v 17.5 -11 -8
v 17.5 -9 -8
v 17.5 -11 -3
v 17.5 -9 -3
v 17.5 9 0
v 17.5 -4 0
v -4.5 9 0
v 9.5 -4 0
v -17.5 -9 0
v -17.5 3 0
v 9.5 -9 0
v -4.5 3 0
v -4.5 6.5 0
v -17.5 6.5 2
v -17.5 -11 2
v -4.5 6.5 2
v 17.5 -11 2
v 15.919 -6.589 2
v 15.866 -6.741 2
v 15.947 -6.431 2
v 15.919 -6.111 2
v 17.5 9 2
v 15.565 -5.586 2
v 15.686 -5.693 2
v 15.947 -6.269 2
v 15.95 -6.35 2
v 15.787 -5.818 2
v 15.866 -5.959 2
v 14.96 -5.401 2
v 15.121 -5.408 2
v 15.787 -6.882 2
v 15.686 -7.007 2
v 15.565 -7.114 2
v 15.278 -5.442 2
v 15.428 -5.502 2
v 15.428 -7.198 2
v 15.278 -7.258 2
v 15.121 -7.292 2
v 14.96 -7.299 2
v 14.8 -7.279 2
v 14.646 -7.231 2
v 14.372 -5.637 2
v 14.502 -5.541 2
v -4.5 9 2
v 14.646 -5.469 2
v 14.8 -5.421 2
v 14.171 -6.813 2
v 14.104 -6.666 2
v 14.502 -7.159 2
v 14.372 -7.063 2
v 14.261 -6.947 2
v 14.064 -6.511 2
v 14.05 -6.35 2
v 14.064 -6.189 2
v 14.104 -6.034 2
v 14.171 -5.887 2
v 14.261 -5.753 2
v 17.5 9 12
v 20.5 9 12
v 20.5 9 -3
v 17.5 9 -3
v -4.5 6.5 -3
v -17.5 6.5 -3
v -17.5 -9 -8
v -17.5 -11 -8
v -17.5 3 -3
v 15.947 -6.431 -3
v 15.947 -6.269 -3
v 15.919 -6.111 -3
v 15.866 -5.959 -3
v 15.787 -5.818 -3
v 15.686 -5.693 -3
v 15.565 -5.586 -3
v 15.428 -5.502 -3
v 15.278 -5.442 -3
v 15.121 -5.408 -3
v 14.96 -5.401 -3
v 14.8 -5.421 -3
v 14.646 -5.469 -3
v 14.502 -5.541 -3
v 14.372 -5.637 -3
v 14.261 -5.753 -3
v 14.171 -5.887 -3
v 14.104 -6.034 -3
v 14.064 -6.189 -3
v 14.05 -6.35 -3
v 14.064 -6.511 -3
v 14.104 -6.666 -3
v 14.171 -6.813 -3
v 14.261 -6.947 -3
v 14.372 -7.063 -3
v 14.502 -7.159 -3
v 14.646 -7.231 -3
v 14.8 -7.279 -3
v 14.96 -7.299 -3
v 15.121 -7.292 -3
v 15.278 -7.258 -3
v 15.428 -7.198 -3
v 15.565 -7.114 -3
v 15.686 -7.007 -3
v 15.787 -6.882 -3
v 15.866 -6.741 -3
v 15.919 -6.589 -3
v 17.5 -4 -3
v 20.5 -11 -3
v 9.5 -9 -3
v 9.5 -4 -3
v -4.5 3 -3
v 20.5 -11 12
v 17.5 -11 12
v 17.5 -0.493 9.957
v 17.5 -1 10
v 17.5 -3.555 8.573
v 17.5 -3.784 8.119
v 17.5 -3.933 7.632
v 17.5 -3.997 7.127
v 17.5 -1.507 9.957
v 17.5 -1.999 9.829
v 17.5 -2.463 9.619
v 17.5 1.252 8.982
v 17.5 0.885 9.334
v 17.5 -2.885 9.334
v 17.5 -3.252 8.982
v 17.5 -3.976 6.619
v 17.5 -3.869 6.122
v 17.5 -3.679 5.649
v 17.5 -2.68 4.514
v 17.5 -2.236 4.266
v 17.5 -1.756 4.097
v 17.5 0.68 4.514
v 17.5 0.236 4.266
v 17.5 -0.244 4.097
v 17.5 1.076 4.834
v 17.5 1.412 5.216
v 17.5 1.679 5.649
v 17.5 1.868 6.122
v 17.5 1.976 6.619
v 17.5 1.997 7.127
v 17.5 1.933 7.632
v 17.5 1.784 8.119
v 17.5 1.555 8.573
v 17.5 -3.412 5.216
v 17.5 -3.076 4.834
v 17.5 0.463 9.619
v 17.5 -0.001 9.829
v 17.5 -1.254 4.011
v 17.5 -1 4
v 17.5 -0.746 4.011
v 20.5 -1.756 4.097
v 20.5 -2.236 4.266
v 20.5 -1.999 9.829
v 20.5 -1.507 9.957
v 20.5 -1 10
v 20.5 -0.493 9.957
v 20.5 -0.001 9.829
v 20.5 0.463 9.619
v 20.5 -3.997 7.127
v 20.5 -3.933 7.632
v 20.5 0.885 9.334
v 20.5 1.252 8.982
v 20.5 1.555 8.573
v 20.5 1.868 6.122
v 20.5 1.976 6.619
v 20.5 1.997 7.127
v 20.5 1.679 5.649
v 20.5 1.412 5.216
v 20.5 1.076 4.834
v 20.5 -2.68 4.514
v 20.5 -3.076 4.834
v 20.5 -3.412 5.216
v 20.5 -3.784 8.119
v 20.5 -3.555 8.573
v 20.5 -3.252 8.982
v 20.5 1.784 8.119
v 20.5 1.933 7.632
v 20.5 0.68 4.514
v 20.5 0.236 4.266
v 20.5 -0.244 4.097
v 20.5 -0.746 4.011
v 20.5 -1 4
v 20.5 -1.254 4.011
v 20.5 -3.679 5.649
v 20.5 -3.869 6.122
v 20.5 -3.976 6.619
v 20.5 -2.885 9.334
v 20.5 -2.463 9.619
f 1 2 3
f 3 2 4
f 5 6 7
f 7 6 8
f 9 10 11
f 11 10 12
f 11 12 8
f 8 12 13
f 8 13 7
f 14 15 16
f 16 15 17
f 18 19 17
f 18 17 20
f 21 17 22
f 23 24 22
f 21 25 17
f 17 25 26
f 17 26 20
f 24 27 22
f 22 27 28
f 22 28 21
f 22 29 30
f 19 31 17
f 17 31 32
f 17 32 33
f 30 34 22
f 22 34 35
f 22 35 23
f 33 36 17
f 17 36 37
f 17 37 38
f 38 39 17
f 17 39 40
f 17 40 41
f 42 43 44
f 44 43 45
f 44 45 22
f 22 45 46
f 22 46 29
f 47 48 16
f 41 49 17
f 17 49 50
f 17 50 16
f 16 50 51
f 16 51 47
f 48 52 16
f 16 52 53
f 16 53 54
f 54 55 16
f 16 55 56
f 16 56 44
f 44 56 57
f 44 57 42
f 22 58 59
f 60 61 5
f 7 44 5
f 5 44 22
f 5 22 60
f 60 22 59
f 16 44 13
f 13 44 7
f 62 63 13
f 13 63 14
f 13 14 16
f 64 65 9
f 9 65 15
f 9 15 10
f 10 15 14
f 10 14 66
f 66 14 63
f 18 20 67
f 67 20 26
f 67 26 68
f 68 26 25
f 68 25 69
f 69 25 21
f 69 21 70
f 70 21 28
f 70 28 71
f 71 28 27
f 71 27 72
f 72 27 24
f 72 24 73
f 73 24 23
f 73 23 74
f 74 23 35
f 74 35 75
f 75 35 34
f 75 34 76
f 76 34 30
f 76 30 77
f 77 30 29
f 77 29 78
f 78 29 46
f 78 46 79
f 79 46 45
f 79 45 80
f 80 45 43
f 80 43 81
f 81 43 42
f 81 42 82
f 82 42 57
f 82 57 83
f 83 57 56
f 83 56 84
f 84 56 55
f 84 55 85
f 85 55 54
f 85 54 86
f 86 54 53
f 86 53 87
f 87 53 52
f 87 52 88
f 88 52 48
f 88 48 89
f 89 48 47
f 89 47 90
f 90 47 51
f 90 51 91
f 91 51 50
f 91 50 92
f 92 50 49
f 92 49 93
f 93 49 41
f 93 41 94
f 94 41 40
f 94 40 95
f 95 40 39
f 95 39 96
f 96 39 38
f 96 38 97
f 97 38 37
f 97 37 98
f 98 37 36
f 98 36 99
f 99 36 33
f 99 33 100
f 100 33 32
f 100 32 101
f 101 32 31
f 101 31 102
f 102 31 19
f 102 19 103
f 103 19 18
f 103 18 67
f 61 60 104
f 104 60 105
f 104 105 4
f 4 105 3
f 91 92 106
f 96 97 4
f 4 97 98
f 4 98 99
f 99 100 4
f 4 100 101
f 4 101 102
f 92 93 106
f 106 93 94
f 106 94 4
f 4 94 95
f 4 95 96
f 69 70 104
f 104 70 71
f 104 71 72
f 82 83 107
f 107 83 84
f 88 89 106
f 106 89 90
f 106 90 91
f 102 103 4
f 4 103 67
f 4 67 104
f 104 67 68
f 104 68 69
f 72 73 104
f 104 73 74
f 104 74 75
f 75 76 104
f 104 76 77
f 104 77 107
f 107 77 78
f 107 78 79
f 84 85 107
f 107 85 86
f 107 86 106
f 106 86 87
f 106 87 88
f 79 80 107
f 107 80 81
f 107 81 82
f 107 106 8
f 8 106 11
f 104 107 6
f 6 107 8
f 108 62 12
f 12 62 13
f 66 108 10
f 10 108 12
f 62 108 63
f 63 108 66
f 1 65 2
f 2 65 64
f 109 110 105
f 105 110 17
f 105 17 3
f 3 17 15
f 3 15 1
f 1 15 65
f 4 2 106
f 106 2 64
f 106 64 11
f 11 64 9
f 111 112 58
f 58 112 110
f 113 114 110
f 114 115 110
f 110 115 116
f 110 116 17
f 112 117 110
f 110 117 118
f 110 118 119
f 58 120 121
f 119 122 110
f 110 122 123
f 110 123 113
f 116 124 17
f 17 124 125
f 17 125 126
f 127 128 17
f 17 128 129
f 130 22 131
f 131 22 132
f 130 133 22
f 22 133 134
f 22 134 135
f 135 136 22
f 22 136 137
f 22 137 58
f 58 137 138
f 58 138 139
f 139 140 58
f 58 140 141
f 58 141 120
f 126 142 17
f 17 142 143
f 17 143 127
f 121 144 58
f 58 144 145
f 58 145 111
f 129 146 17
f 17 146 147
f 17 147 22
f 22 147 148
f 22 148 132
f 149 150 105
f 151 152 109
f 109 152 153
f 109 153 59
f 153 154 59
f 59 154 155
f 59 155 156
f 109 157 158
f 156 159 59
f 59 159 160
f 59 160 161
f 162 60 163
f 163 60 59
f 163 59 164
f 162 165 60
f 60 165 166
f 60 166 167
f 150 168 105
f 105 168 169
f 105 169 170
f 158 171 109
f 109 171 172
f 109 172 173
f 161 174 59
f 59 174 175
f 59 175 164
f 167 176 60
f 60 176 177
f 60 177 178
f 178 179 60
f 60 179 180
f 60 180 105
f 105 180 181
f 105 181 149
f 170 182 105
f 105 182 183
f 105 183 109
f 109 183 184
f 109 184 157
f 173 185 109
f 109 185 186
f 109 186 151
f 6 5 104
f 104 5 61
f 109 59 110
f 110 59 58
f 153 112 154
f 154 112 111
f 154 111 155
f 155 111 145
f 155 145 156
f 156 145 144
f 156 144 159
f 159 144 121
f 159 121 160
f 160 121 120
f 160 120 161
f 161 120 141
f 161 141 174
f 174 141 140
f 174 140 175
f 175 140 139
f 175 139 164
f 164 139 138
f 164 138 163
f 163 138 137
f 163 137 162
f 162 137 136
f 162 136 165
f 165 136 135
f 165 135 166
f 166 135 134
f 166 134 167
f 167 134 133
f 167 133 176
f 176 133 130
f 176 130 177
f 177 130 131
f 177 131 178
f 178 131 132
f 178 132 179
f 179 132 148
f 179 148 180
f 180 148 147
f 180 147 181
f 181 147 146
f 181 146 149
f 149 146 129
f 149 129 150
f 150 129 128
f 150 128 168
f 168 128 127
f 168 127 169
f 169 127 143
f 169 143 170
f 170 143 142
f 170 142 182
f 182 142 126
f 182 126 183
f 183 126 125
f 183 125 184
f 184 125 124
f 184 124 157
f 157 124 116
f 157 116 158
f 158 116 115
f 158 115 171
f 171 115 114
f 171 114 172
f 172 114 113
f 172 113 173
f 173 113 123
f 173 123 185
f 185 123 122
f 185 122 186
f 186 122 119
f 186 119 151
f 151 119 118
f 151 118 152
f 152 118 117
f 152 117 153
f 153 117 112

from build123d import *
from build123d.topology import SkipClean

# Parameters (mm, degrees)
SKETCH_1_R      = 0.95
EXTRUDE_1_DEPTH = 2
EXTRUDE_START   = 3
SKETCH_2_W      = 8
SKETCH_2_H      = 5
SKETCH_2_R      = 0.95
SKETCH_2_W_2    = 13
SKETCH_2_H_2    = 3.5
EXTRUDE_2_DEPTH = 3
SKETCH_4_W      = 35
SKETCH_4_H      = 10
EXTRUDE_3_DEPTH = 2
SKETCH_5_W      = 15
SKETCH_5_H      = 20
SKETCH_5_R      = 3
EXTRUDE_4_DEPTH = 3


with BuildPart() as part:
    # 草图1 → 凸台-拉伸1 (new body)
    with BuildSketch(Plane.XY):
        Polygon((-17.5, 6.5), (-4.5, 6.5), (-4.5, 9), (17.5, 9), (17.5, -9), (-17.5, -9), align=None)
        with Locations((15, -6.35)):
            Circle(SKETCH_1_R, mode=Mode.SUBTRACT)
    extrude(amount=EXTRUDE_1_DEPTH)

    # 草图2 → 凸台-拉伸2 (add)
    # profile 1 of 2: a face of its own
    with SkipClean():  # the faces are left unmerged after this step: merging them gives an invalid solid
        with BuildSketch(Plane(origin=(0, 0, 0), x_dir=(-1, 0, 0), z_dir=(0, 0, -1)).offset(EXTRUDE_START)):
            with Locations((-13.5, -6.5)):
                Rectangle(SKETCH_2_W, SKETCH_2_H)
            with Locations((-15, -6.35)):
                Circle(SKETCH_2_R, mode=Mode.SUBTRACT)
        # profile 2 of 2: a face of its own
        with BuildSketch(Plane(origin=(0, 0, 0), x_dir=(-1, 0, 0), z_dir=(0, 0, -1)).offset(EXTRUDE_START)):
            with Locations((11, 4.75)):
                Rectangle(SKETCH_2_W_2, SKETCH_2_H_2)
        extrude(amount=-EXTRUDE_2_DEPTH)

    # 草图4 → 凸台-拉伸3 (add)
    with SkipClean():  # the faces are left unmerged after this step: merging them gives an invalid solid
        with BuildSketch(Plane.XZ.offset(9)):
            with Locations((0, -3)):
                Rectangle(SKETCH_4_W, SKETCH_4_H)
        extrude(amount=EXTRUDE_3_DEPTH)

    # 草图5 → 凸台-拉伸4 (add)
    with SkipClean():  # the faces are left unmerged after this step: merging them gives an invalid solid
        with BuildSketch(Plane(origin=(17.5, 0, 0), x_dir=(0, 0, -1), z_dir=(1, 0, 0))):
            with Locations((-4.5, -1)):
                Rectangle(SKETCH_5_W, SKETCH_5_H)
            with Locations((-7, -1)):
                Circle(SKETCH_5_R, mode=Mode.SUBTRACT)
        extrude(amount=EXTRUDE_4_DEPTH)


solid = part.part
